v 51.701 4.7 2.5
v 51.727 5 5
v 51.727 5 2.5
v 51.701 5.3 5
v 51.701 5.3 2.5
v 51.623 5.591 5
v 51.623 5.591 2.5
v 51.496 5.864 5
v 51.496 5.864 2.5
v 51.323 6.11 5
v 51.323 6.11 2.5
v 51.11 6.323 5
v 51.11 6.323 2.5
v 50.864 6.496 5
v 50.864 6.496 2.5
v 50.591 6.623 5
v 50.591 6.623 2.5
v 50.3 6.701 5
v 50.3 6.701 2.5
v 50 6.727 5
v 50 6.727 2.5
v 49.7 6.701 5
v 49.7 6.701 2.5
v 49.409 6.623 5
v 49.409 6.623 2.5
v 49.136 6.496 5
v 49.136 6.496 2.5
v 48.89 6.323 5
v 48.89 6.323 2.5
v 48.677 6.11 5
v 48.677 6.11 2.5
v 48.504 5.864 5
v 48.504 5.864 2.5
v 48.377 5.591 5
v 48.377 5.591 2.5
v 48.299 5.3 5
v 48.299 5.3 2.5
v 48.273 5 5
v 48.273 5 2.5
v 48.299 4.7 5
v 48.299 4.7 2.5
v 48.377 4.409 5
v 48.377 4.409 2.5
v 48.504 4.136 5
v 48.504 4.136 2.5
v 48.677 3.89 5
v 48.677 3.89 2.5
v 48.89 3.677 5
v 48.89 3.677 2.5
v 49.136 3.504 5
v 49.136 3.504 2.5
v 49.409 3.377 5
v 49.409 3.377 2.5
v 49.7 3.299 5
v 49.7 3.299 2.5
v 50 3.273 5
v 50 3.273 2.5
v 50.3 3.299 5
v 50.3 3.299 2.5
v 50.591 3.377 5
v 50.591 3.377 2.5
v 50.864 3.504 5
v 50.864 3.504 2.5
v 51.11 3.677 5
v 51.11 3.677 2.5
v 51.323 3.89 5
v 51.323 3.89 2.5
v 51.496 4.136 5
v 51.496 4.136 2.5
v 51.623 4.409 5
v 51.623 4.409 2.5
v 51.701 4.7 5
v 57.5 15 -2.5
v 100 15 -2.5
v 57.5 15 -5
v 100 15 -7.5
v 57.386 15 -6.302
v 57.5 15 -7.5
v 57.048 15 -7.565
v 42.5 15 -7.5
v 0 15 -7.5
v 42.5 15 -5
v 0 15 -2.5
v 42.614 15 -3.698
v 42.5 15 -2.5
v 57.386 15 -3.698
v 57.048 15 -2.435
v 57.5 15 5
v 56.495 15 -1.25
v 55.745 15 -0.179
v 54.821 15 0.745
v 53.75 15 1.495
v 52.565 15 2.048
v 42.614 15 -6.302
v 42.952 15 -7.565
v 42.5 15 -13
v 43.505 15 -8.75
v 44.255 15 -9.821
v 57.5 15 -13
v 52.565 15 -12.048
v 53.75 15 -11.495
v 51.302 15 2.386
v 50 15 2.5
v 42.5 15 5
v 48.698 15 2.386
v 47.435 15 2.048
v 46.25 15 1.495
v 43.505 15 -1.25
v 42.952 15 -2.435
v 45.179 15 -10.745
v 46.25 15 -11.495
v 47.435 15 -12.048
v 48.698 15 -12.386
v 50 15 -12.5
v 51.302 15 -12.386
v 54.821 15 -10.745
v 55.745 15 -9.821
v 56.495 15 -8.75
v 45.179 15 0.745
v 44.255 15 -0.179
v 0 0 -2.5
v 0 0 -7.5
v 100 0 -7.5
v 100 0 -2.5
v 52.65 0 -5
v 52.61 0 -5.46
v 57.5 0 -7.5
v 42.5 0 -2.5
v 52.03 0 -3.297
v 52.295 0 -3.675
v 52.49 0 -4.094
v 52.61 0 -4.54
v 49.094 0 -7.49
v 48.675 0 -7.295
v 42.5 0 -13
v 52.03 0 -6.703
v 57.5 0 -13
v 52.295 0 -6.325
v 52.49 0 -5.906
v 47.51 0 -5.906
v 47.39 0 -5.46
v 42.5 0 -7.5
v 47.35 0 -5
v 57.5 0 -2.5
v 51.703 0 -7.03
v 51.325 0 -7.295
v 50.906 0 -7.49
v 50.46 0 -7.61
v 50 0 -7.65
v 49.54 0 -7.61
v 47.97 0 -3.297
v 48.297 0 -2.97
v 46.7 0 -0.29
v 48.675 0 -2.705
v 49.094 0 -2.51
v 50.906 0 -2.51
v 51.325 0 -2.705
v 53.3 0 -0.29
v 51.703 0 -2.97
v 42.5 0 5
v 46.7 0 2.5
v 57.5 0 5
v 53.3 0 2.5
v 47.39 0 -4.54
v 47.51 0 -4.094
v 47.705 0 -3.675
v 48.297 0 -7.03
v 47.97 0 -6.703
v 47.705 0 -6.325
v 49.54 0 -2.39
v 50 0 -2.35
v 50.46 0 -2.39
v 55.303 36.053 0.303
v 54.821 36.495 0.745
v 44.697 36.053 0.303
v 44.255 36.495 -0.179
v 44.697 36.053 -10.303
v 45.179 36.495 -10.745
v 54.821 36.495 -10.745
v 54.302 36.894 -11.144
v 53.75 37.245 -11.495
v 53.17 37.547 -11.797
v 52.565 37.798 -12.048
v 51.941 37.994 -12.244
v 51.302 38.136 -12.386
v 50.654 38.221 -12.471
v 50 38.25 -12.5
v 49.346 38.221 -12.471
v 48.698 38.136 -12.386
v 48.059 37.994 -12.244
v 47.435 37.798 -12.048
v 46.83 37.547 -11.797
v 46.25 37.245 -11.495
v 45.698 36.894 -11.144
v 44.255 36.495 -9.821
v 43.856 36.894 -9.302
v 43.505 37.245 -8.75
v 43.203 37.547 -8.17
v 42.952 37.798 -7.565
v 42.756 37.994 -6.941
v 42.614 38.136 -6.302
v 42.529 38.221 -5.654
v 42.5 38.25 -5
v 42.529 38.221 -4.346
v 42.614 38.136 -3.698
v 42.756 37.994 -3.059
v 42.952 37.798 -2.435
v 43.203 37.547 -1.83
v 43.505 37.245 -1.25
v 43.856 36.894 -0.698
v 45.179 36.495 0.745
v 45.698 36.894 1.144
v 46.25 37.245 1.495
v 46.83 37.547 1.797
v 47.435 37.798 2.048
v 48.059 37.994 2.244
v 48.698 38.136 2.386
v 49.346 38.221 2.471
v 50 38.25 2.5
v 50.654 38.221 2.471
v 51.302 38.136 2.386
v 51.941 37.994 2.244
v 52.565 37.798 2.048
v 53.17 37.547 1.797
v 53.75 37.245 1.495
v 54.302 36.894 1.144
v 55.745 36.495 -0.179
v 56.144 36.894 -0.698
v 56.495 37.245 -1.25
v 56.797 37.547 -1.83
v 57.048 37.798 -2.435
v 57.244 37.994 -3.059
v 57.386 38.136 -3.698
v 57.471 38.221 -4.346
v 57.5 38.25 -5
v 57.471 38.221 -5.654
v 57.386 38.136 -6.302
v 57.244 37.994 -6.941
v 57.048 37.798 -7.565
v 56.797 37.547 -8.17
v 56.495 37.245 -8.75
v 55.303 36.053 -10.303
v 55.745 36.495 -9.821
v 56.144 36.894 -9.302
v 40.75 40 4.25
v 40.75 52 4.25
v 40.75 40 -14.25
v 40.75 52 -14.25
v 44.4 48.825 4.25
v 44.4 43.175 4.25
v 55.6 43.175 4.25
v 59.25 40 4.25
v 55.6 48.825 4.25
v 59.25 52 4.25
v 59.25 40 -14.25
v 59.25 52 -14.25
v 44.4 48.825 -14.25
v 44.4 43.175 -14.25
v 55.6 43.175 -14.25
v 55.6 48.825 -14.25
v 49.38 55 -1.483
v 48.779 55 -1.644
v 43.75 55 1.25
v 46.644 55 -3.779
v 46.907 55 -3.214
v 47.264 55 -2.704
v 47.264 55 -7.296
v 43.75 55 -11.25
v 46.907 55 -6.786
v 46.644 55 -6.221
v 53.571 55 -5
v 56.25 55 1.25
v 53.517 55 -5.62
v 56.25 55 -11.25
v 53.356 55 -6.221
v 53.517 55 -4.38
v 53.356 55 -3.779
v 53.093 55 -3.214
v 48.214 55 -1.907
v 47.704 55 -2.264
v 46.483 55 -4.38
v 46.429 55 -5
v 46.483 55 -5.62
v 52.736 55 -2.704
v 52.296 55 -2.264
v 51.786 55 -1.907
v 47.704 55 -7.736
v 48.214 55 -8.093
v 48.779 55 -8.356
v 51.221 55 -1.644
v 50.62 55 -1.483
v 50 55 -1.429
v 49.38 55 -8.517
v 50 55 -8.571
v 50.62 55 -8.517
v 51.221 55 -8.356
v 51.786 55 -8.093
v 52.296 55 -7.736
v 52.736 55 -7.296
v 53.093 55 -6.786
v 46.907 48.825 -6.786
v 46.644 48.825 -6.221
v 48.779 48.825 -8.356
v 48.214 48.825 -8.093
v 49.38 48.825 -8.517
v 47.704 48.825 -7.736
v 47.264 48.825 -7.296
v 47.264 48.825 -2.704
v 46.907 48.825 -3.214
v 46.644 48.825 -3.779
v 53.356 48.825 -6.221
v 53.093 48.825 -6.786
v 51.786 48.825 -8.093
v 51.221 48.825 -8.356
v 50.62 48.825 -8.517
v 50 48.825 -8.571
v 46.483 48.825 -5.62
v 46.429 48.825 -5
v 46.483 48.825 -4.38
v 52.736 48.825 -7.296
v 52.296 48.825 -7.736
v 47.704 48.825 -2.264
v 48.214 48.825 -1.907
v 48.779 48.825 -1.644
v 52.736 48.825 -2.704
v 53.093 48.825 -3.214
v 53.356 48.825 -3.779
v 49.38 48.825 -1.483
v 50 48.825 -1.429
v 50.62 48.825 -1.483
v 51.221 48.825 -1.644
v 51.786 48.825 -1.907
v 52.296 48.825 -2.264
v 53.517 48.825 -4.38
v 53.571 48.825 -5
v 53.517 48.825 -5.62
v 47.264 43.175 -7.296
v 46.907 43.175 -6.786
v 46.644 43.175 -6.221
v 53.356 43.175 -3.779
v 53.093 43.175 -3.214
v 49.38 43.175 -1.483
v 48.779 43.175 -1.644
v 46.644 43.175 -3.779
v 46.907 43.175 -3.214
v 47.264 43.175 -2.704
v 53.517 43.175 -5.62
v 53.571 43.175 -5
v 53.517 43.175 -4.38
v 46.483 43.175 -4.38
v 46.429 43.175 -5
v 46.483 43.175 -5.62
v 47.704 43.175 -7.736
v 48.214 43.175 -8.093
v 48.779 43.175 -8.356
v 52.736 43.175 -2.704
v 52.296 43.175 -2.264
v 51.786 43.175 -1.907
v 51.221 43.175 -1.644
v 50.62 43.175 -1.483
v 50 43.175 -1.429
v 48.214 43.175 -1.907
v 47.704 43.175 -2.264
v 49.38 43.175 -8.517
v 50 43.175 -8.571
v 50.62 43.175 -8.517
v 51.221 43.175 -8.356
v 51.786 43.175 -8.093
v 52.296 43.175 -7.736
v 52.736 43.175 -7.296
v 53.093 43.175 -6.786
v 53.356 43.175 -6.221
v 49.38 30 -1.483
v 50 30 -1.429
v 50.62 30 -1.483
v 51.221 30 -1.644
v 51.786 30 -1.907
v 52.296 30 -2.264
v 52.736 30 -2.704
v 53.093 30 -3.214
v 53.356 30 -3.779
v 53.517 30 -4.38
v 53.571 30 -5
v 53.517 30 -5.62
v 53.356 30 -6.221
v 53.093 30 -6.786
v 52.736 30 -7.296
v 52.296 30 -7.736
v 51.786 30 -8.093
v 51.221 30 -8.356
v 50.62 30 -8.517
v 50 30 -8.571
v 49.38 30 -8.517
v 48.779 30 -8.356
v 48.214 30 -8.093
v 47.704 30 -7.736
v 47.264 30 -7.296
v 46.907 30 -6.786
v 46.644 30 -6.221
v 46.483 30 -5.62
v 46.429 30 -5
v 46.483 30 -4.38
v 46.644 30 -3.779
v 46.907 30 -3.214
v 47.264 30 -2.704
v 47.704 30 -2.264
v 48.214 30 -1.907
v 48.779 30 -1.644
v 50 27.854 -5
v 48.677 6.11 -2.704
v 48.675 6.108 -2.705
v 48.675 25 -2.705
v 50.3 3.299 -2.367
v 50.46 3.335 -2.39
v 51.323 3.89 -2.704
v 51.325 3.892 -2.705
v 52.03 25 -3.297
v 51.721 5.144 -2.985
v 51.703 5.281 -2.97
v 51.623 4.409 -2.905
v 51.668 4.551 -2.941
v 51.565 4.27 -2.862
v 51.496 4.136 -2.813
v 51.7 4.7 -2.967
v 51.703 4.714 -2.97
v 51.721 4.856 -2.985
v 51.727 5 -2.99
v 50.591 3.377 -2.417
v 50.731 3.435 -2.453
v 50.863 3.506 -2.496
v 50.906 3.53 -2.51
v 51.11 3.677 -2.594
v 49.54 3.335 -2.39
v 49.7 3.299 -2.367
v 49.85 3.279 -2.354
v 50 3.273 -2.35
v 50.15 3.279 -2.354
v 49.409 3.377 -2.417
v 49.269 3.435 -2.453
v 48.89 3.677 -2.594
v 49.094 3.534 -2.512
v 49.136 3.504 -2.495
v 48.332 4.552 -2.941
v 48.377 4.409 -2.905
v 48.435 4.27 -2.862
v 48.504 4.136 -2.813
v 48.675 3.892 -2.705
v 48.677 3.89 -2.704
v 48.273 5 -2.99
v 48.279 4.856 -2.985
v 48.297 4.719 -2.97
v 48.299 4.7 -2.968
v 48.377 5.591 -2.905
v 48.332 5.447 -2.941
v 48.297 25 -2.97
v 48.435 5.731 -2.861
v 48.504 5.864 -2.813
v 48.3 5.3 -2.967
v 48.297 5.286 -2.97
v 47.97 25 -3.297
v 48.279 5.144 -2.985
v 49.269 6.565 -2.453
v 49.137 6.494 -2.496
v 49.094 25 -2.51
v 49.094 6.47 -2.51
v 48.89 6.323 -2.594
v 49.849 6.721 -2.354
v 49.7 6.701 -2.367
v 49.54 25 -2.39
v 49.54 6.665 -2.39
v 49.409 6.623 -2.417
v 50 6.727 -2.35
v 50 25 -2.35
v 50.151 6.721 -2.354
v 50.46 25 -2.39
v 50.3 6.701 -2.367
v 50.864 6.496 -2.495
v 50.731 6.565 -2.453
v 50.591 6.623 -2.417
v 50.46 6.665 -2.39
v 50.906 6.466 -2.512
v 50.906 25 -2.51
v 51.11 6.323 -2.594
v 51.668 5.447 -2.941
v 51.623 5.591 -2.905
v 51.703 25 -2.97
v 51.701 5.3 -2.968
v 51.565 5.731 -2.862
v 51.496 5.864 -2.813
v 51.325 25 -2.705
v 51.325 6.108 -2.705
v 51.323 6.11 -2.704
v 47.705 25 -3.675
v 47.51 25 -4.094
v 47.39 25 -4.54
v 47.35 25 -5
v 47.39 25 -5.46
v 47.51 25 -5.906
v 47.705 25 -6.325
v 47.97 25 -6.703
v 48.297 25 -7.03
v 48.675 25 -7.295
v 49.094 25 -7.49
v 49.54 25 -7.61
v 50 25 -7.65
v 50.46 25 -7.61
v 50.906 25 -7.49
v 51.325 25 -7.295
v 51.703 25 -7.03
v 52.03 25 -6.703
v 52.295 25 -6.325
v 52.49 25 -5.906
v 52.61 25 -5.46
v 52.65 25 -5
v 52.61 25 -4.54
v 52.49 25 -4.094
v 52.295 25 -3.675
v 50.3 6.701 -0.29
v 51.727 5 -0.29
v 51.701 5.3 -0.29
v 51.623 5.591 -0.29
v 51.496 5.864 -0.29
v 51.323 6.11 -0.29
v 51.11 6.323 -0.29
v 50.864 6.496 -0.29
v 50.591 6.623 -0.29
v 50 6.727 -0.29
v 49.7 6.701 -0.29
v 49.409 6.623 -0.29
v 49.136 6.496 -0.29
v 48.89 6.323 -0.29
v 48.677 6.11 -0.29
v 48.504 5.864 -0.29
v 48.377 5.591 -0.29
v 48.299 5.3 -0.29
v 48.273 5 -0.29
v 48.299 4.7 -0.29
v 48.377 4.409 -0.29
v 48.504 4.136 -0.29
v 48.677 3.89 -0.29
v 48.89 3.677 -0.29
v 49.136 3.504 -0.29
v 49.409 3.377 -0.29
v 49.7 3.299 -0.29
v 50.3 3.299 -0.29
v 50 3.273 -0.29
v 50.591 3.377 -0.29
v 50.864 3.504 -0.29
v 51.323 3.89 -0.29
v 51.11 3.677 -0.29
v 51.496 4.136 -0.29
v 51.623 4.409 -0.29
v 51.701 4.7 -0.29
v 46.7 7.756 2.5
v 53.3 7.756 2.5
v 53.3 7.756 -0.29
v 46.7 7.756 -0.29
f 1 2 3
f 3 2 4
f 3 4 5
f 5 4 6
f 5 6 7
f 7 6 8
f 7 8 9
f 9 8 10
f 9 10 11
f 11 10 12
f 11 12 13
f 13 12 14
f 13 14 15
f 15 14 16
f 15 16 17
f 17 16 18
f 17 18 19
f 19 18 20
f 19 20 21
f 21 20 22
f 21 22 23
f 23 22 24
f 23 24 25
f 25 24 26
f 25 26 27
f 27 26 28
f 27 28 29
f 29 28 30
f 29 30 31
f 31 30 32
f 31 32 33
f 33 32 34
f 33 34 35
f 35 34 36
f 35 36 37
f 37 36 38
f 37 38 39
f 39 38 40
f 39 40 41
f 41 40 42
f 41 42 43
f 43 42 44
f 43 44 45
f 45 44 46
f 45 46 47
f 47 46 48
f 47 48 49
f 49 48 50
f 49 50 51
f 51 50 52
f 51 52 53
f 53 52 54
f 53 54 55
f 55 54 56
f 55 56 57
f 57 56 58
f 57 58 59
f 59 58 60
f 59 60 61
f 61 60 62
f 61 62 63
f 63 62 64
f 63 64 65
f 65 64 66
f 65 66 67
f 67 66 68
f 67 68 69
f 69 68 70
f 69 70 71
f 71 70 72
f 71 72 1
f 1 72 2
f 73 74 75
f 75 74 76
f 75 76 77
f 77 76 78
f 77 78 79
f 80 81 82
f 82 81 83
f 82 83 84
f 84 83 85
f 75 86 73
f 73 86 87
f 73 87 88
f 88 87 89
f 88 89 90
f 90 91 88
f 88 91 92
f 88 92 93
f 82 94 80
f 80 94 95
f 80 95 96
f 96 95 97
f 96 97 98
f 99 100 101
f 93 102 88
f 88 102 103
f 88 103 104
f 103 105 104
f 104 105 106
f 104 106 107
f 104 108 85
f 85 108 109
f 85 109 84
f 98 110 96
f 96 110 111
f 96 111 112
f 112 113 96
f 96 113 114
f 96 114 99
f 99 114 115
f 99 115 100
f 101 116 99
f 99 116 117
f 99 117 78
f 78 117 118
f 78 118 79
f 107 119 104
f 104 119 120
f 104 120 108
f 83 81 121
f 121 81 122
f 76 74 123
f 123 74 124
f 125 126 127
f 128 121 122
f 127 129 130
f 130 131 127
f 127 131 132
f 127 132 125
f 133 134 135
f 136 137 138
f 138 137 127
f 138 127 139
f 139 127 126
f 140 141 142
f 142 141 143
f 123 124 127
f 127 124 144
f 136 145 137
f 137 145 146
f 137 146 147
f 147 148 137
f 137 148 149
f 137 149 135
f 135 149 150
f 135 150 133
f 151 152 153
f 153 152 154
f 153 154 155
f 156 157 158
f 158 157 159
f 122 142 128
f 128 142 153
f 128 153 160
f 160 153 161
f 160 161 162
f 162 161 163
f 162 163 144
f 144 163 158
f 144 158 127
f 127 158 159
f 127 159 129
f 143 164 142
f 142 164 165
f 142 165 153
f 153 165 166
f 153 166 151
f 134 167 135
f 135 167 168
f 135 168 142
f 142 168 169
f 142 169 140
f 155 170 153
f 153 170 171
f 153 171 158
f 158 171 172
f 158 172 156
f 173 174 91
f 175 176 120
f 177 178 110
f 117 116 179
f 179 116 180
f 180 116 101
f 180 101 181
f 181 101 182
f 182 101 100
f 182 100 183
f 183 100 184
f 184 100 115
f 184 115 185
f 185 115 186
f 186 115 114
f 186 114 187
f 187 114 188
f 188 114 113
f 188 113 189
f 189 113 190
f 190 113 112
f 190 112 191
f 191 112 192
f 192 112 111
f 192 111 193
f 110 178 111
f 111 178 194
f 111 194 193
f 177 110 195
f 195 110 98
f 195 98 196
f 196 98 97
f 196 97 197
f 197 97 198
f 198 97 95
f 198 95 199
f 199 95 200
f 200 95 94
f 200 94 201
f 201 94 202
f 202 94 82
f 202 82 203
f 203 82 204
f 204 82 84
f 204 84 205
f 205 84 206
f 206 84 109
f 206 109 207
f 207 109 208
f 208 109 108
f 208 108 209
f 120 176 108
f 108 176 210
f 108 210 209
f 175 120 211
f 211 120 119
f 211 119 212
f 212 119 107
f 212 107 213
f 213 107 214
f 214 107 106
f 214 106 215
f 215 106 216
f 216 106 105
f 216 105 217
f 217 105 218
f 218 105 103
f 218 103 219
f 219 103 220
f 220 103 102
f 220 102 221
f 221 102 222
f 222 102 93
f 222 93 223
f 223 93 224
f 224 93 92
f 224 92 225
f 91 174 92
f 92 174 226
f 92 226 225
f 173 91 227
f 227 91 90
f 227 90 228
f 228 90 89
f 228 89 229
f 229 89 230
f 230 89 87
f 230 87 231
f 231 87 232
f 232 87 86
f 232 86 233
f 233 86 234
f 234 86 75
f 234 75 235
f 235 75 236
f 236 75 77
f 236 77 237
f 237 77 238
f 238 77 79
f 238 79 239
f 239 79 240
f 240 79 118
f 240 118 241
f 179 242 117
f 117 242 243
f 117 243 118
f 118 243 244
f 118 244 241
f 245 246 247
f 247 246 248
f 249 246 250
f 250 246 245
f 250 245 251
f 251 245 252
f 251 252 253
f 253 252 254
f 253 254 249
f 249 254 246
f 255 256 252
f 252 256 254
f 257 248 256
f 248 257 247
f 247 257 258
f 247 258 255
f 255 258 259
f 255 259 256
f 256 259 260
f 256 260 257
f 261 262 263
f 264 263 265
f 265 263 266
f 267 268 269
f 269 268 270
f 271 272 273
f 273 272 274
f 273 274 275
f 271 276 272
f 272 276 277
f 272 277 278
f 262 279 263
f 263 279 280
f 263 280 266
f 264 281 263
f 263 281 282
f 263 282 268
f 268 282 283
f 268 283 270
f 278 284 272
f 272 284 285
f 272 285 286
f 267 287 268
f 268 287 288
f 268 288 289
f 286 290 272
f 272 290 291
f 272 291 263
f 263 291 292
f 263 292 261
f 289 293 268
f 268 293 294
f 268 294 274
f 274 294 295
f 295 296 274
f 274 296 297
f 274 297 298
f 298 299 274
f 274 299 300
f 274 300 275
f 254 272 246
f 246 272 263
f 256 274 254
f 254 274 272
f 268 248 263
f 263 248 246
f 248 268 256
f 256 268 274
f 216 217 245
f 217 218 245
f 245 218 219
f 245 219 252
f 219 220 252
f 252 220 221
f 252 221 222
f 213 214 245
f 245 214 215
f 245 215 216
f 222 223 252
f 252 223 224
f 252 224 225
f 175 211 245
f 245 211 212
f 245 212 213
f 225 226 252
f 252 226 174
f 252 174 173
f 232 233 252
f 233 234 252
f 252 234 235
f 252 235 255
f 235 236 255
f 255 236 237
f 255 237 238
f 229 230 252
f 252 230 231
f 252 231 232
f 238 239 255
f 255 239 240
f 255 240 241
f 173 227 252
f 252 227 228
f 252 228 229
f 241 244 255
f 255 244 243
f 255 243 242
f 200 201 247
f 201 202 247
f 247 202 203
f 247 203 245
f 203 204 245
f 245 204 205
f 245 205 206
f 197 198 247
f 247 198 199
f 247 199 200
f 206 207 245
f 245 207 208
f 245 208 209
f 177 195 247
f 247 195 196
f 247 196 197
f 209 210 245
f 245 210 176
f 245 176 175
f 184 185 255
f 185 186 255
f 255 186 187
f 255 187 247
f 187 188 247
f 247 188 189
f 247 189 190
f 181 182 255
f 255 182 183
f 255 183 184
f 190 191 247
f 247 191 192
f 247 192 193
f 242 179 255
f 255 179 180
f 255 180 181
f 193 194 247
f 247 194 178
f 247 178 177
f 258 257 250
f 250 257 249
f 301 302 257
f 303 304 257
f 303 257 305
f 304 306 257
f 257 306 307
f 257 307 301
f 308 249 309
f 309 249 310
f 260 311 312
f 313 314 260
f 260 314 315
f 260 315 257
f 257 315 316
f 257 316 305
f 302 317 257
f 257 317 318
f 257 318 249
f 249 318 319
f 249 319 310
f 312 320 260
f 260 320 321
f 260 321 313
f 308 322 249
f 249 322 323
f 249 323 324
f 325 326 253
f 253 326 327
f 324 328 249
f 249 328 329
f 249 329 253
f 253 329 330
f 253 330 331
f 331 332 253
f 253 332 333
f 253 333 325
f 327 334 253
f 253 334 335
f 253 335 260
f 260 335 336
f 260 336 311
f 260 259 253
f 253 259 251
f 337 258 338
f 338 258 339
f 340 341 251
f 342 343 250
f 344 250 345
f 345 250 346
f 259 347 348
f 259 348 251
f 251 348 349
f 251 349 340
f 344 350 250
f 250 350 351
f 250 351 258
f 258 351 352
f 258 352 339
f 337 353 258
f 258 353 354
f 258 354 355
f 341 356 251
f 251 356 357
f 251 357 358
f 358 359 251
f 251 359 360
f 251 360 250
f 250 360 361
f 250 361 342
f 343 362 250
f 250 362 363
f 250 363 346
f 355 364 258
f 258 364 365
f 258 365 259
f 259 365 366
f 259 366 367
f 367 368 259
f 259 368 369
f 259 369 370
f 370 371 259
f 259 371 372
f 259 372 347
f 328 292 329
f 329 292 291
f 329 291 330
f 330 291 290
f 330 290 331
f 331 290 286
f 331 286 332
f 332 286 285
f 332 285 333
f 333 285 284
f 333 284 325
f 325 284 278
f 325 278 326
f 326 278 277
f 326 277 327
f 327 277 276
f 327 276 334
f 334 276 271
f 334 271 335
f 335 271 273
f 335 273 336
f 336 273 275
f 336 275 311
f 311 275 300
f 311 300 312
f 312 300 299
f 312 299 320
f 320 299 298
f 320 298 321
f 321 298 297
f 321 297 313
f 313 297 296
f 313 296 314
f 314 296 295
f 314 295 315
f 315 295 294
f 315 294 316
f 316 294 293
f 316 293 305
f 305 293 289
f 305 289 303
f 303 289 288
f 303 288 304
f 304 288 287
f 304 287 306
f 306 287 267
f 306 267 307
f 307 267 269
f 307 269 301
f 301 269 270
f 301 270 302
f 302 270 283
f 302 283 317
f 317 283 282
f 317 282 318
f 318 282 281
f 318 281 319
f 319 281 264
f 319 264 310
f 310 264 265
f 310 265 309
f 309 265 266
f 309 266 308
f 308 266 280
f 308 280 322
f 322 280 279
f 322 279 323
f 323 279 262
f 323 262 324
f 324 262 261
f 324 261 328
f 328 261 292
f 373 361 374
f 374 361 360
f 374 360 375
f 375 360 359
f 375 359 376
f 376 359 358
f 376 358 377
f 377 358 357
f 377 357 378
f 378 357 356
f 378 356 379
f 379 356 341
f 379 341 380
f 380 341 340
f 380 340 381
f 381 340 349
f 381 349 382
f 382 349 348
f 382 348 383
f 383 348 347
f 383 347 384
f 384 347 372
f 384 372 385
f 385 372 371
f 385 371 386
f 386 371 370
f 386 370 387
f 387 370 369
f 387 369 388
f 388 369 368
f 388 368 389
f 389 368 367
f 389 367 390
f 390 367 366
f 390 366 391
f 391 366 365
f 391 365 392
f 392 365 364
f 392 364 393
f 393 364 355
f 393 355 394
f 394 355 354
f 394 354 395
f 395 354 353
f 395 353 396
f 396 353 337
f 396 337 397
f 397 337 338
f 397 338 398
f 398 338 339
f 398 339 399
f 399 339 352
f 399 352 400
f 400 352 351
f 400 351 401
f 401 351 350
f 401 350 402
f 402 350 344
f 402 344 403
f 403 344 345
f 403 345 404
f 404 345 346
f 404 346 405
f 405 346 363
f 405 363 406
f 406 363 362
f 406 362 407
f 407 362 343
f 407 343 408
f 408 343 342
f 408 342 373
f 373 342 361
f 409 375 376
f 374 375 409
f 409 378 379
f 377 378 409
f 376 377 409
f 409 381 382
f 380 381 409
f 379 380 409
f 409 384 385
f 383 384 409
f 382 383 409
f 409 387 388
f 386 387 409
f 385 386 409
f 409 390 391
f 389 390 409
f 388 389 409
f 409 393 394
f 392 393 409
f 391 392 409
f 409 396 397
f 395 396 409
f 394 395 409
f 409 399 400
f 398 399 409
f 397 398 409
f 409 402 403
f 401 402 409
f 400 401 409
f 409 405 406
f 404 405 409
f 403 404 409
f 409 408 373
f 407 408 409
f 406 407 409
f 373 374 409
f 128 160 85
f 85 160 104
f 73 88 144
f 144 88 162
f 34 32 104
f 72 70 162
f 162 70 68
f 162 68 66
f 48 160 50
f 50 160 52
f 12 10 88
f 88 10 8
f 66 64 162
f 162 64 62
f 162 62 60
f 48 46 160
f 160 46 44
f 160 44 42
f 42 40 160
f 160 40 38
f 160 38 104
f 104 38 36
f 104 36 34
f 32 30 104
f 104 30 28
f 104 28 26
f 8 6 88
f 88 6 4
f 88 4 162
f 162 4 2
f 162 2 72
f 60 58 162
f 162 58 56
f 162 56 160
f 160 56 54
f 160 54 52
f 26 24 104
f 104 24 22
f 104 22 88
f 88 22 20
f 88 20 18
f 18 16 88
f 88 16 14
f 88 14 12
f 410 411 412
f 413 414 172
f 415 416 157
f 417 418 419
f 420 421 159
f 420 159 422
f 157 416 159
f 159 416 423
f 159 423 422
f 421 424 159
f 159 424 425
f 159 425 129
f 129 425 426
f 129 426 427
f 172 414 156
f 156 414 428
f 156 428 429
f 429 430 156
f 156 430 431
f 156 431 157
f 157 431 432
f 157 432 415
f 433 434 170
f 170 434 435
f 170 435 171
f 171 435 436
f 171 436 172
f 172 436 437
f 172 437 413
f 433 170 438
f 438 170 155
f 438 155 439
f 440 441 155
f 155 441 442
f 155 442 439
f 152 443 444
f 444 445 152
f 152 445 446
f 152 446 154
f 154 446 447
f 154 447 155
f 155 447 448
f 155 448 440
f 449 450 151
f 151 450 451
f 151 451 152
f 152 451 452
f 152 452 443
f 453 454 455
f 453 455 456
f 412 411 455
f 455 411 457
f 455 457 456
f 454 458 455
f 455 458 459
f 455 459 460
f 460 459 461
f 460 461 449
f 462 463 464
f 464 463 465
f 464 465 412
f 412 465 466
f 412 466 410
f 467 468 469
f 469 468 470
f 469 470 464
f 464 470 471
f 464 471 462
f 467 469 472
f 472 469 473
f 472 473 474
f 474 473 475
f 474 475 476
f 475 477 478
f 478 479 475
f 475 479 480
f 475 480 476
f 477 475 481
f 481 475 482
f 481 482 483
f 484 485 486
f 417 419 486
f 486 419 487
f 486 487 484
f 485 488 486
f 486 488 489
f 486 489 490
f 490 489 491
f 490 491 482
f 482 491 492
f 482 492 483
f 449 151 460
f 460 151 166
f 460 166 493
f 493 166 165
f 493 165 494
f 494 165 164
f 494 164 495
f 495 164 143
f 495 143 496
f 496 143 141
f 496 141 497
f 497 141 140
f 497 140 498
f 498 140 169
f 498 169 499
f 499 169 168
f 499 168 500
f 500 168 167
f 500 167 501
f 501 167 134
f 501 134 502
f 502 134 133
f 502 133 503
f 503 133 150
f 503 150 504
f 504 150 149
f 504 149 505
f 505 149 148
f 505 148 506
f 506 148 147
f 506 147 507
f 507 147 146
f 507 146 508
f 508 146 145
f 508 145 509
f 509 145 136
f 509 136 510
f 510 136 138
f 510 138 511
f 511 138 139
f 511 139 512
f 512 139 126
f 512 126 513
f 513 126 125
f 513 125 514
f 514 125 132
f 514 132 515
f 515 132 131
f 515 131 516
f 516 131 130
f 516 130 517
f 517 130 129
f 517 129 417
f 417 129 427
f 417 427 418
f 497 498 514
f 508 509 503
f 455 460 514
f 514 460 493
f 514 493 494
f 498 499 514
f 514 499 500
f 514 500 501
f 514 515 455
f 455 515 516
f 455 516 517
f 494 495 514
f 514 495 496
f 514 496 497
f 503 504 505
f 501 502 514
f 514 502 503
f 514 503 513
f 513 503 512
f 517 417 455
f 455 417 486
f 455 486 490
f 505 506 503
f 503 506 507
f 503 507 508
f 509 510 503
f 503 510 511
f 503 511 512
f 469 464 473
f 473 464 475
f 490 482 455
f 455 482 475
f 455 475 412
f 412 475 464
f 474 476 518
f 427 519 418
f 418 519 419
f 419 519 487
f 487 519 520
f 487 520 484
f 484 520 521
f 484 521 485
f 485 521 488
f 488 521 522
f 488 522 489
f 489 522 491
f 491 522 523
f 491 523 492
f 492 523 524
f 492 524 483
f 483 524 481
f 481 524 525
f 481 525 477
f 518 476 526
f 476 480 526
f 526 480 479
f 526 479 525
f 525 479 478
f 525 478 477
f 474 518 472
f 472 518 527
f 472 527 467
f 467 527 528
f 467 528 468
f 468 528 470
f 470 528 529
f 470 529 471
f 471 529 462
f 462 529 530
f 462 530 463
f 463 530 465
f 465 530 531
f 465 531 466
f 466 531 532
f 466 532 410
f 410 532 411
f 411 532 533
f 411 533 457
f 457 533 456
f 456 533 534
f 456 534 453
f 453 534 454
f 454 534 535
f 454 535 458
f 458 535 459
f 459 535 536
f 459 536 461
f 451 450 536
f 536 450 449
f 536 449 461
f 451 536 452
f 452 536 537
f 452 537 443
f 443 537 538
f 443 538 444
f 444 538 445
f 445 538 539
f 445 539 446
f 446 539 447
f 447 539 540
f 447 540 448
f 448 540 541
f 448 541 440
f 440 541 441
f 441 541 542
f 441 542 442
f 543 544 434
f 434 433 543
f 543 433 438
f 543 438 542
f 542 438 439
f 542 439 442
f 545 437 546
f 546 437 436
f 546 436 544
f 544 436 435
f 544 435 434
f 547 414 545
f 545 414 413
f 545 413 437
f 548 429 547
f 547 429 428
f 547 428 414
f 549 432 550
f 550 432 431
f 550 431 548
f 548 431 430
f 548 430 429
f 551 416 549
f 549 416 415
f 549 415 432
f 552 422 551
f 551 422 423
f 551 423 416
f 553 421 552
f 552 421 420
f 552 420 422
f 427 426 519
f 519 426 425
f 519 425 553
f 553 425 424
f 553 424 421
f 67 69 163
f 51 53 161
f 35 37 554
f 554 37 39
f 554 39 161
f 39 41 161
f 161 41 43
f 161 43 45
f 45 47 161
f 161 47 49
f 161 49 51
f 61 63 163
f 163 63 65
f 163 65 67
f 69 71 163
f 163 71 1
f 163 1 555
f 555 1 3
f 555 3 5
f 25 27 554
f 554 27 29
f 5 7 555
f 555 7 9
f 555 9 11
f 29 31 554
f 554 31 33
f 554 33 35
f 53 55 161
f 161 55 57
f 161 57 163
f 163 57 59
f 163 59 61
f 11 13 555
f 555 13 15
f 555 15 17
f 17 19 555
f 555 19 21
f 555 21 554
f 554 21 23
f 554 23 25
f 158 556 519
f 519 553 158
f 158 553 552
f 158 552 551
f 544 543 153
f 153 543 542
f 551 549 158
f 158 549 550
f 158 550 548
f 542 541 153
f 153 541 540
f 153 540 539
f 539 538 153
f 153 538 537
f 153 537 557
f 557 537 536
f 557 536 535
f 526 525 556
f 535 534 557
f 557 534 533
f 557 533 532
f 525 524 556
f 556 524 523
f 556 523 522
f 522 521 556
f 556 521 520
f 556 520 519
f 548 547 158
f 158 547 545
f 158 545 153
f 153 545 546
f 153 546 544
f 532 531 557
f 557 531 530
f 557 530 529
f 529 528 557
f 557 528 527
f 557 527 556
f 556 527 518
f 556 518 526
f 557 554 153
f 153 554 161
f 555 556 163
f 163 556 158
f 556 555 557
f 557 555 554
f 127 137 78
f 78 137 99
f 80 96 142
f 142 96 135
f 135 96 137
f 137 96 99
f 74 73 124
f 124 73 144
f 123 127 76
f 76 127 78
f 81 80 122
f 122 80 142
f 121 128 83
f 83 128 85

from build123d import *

# Parameters (mm, degrees)
SKETCH1_W                   = 100
SKETCH1_H                   = 10
BOSS_EXTRUDE1_DEPTH         = 15
SKETCH2_R                   = 7.5
BOSS_EXTRUDE2_DEPTH         = 20
SKETCH3_W                   = 18.5
SKETCH3_H                   = 18.5
BOSS_EXTRUDE3_DEPTH         = 20
CHAMFER1_SIZE               = 3
CHAMFER2_SIZE               = 5
SKETCH4_W                   = 11.2
SKETCH4_H                   = 5.65
CUT_EXTRUDE1_DEPTH          = 116.616824035
F_1_4_CLEARANCE_HOLE1_D     = 7.14248
F_1_4_CLEARANCE_HOLE1_DEPTH = 25
F_1_4_CLEARANCE_HOLE1_TIP   = 2.145817477
SKETCH8_W                   = 15
SKETCH8_H                   = 15
BOSS_EXTRUDE4_DEPTH         = 5
SKETCH9_R                   = 2.65
CUT_EXTRUDE2_DEPTH          = 25
F_4_CLEARANCE_HOLE1_D       = 3.4544
F_4_CLEARANCE_HOLE1_DEPTH   = 10
F_4_CLEARANCE_HOLE1_TIP     = 1.037806461
SKETCH13_W                  = 6.6
SKETCH13_H                  = 2.79
CUT_EXTRUDE3_DEPTH          = 7.7559
SKETCH14_W                  = 15
SKETCH14_H                  = 15
BOSS_EXTRUDE5_DEPTH         = 3
SKETCH15_W                  = 2.5
SKETCH15_H                  = 15
CUT_EXTRUDE4_DEPTH          = 42.5
SKETCH16_W                  = 2.5
SKETCH16_H                  = 15
CUT_EXTRUDE5_DEPTH          = 42.5


with BuildPart() as part:
    # Sketch1 → Boss-Extrude1 (new body)
    with BuildSketch(Plane(origin=(0, 0, 0), x_dir=(1, 0, 0), z_dir=(0, 1, 0))):
        with Locations((50, 5)):
            Rectangle(SKETCH1_W, SKETCH1_H)
    extrude(amount=BOSS_EXTRUDE1_DEPTH)

    # Sketch2 → Boss-Extrude2 (add)
    with BuildSketch(Plane(origin=(0, 15, 0), x_dir=(1, 0, 0), z_dir=(0, 1, 0))):
        with Locations(Location((50, 5, 0), (0, 0, 41.810314896))):
            Circle(SKETCH2_R)
    extrude(amount=BOSS_EXTRUDE2_DEPTH)

    # Sketch3 → Boss-Extrude3 (add)
    with BuildSketch(Plane(origin=(0, 35, 0), x_dir=(1, 0, 0), z_dir=(0, 1, 0))):
        with Locations((50, 5)):
            Rectangle(SKETCH3_W, SKETCH3_H)
    extrude(amount=BOSS_EXTRUDE3_DEPTH)

    # Chamfer1
    chamfer1_edges = [part.edges().sort_by_distance(p)[0] for p in [
        (40.75, 55, -5),
        (50, 55, 4.25),
        (59.25, 55, -5),
        (50, 55, -14.25),
    ]]
    chamfer(chamfer1_edges, length=CHAMFER1_SIZE)

    # Chamfer2
    # the kernel refuses this chamfer: 5 mm, written as the material it takes off along each edge
    with BuildSketch(Plane(origin=(27.89158506, 35, -14.25), x_dir=(0, 0.9996219169112968, -0.027495876610586317), z_dir=(1, 0, 0))) as chamfer2_piece_1_section:
        Polygon((CHAMFER2_SIZE * 0.999621916911, CHAMFER2_SIZE * 0.0274958766106), (-CHAMFER2_SIZE * 0.0274958766106, CHAMFER2_SIZE * 0.999621916911), (0, 0), align=None)
    chamfer2_piece_1 = extrude(amount=44.21682988, mode=Mode.PRIVATE)
    chamfer2_piece_1 = chamfer2_piece_1 - Plane(origin=(50, 36.70985324, -5), x_dir=(0.7453559924973537, 0, -0.6666666666695469), z_dir=(0, -1, 0)) * Cylinder(7.5, 109, mode=Mode.PRIVATE)
    with BuildSketch(Plane(origin=(40.75, 35, 17.10841494), x_dir=(-0.027495876610586317, 0.9996219169112968, 0), z_dir=(0, 0, -1))) as chamfer2_piece_2_section:
        Polygon((CHAMFER2_SIZE * 0.999621916911, CHAMFER2_SIZE * 0.0274958766106), (-CHAMFER2_SIZE * 0.0274958766106, CHAMFER2_SIZE * 0.999621916911), (0, 0), align=None)
    chamfer2_piece_2 = extrude(amount=44.21682988, mode=Mode.PRIVATE)
    chamfer2_piece_2 = chamfer2_piece_2 - Plane(origin=(50, 36.709853278, -5), x_dir=(0.7453559924973537, 0, -0.6666666666695469), z_dir=(0, -1, 0)) * Cylinder(7.5, 109, mode=Mode.PRIVATE)
    with BuildSketch(Plane(origin=(59.25, 35, -27.10841494), x_dir=(-0.9996219169112968, -0.027495876610586317, 0), z_dir=(0, 0, 1))) as chamfer2_piece_3_section:
        Polygon((CHAMFER2_SIZE * 0.999621916911, -CHAMFER2_SIZE * 0.0274958766106), (-CHAMFER2_SIZE * 0.0274958766106, -CHAMFER2_SIZE * 0.999621916911), (0, 0), align=None)
    chamfer2_piece_3 = extrude(amount=44.21682988, mode=Mode.PRIVATE)
    chamfer2_piece_3 = chamfer2_piece_3 - Plane(origin=(50, 36.709853248, -5), x_dir=(0.7453559924973537, 0, -0.6666666666695469), z_dir=(0, -1, 0)) * Cylinder(7.5, 109, mode=Mode.PRIVATE)
    with BuildSketch(Plane(origin=(72.10841494, 35, 4.25), x_dir=(0, -0.027495876610586317, -0.9996219169112968), z_dir=(-1, 0, 0))) as chamfer2_piece_4_section:
        Polygon((CHAMFER2_SIZE * 0.999621916911, -CHAMFER2_SIZE * 0.0274958766106), (-CHAMFER2_SIZE * 0.0274958766106, -CHAMFER2_SIZE * 0.999621916911), (0, 0), align=None)
    chamfer2_piece_4 = extrude(amount=44.21682988, mode=Mode.PRIVATE)
    chamfer2_piece_4 = chamfer2_piece_4 - Plane(origin=(50, 36.709853226, -5), x_dir=(0.7453559924973537, 0, -0.6666666666695469), z_dir=(0, -1, 0)) * Cylinder(7.5, 109, mode=Mode.PRIVATE)
    add([chamfer2_piece_1, chamfer2_piece_2, chamfer2_piece_3, chamfer2_piece_4], mode=Mode.SUBTRACT)

    # Sketch4 → Cut-Extrude1 (cut, through all)
    with BuildSketch(Plane.XY.offset(4.25)):
        with Locations((50, 46)):
            Rectangle(SKETCH4_W, SKETCH4_H)
    extrude(amount=-CUT_EXTRUDE1_DEPTH, mode=Mode.SUBTRACT)

    # 1/4 Clearance Hole1
    with Locations(Plane(origin=(0, 55, 0), x_dir=(1, 0, 0), z_dir=(0, 1, 0))):
        with Locations((50, 5)):
            Hole(F_1_4_CLEARANCE_HOLE1_D / 2, depth=F_1_4_CLEARANCE_HOLE1_DEPTH)
            with Locations((0, 0, -(F_1_4_CLEARANCE_HOLE1_DEPTH + F_1_4_CLEARANCE_HOLE1_TIP / 2))):  # 118° drill point
                Cone(0, F_1_4_CLEARANCE_HOLE1_D / 2, F_1_4_CLEARANCE_HOLE1_TIP, mode=Mode.SUBTRACT)

    # Sketch8 → Boss-Extrude4 (add)
    with BuildSketch(Plane.XY):
        with Locations((50, 7.5)):
            Rectangle(SKETCH8_W, SKETCH8_H)
    extrude(amount=BOSS_EXTRUDE4_DEPTH)

    # Sketch9 → Cut-Extrude2 (cut)
    with BuildSketch(Plane.XZ):
        with Locations(Location((50, -5, 0), (0, 0, 270))):
            Circle(SKETCH9_R)
    extrude(amount=-CUT_EXTRUDE2_DEPTH, mode=Mode.SUBTRACT)

    # #4 Clearance Hole1
    with Locations(Plane.XY.offset(5)):
        with Locations((50, 5)):
            Hole(F_4_CLEARANCE_HOLE1_D / 2, depth=F_4_CLEARANCE_HOLE1_DEPTH)
            with Locations((0, 0, -(F_4_CLEARANCE_HOLE1_DEPTH + F_4_CLEARANCE_HOLE1_TIP / 2))):  # 118° drill point
                Cone(0, F_4_CLEARANCE_HOLE1_D / 2, F_4_CLEARANCE_HOLE1_TIP, mode=Mode.SUBTRACT)

    # Sketch13 → Cut-Extrude3 (cut)
    with BuildSketch(Plane.XZ):
        with Locations((50, 1.105)):
            Rectangle(SKETCH13_W, SKETCH13_H)
    extrude(amount=-CUT_EXTRUDE3_DEPTH, mode=Mode.SUBTRACT)

    # Sketch14 → Boss-Extrude5 (add)
    with BuildSketch(Plane(origin=(0, 0, -10), x_dir=(-1, 0, 0), z_dir=(0, 0, -1))):
        with Locations((-50, 7.5)):
            Rectangle(SKETCH14_W, SKETCH14_H)
    extrude(amount=BOSS_EXTRUDE5_DEPTH)

    # Sketch15 → Cut-Extrude4 (cut)
    with BuildSketch(Plane(origin=(100, 0, 0), x_dir=(0, 0, -1), z_dir=(1, 0, 0))):
        with Locations((1.25, 7.5)):
            Rectangle(SKETCH15_W, SKETCH15_H)
        with Locations((8.75, 7.5)):
            Rectangle(SKETCH15_W, SKETCH15_H)
    extrude(amount=-CUT_EXTRUDE4_DEPTH, mode=Mode.SUBTRACT)

    # Sketch16 → Cut-Extrude5 (cut)
    with BuildSketch(Plane.ZY):
        with Locations((-8.75, 7.5)):
            Rectangle(SKETCH16_W, SKETCH16_H)
        with Locations((-1.25, 7.5)):
            Rectangle(SKETCH16_W, SKETCH16_H)
    extrude(amount=-CUT_EXTRUDE5_DEPTH, mode=Mode.SUBTRACT)


solid = part.part
